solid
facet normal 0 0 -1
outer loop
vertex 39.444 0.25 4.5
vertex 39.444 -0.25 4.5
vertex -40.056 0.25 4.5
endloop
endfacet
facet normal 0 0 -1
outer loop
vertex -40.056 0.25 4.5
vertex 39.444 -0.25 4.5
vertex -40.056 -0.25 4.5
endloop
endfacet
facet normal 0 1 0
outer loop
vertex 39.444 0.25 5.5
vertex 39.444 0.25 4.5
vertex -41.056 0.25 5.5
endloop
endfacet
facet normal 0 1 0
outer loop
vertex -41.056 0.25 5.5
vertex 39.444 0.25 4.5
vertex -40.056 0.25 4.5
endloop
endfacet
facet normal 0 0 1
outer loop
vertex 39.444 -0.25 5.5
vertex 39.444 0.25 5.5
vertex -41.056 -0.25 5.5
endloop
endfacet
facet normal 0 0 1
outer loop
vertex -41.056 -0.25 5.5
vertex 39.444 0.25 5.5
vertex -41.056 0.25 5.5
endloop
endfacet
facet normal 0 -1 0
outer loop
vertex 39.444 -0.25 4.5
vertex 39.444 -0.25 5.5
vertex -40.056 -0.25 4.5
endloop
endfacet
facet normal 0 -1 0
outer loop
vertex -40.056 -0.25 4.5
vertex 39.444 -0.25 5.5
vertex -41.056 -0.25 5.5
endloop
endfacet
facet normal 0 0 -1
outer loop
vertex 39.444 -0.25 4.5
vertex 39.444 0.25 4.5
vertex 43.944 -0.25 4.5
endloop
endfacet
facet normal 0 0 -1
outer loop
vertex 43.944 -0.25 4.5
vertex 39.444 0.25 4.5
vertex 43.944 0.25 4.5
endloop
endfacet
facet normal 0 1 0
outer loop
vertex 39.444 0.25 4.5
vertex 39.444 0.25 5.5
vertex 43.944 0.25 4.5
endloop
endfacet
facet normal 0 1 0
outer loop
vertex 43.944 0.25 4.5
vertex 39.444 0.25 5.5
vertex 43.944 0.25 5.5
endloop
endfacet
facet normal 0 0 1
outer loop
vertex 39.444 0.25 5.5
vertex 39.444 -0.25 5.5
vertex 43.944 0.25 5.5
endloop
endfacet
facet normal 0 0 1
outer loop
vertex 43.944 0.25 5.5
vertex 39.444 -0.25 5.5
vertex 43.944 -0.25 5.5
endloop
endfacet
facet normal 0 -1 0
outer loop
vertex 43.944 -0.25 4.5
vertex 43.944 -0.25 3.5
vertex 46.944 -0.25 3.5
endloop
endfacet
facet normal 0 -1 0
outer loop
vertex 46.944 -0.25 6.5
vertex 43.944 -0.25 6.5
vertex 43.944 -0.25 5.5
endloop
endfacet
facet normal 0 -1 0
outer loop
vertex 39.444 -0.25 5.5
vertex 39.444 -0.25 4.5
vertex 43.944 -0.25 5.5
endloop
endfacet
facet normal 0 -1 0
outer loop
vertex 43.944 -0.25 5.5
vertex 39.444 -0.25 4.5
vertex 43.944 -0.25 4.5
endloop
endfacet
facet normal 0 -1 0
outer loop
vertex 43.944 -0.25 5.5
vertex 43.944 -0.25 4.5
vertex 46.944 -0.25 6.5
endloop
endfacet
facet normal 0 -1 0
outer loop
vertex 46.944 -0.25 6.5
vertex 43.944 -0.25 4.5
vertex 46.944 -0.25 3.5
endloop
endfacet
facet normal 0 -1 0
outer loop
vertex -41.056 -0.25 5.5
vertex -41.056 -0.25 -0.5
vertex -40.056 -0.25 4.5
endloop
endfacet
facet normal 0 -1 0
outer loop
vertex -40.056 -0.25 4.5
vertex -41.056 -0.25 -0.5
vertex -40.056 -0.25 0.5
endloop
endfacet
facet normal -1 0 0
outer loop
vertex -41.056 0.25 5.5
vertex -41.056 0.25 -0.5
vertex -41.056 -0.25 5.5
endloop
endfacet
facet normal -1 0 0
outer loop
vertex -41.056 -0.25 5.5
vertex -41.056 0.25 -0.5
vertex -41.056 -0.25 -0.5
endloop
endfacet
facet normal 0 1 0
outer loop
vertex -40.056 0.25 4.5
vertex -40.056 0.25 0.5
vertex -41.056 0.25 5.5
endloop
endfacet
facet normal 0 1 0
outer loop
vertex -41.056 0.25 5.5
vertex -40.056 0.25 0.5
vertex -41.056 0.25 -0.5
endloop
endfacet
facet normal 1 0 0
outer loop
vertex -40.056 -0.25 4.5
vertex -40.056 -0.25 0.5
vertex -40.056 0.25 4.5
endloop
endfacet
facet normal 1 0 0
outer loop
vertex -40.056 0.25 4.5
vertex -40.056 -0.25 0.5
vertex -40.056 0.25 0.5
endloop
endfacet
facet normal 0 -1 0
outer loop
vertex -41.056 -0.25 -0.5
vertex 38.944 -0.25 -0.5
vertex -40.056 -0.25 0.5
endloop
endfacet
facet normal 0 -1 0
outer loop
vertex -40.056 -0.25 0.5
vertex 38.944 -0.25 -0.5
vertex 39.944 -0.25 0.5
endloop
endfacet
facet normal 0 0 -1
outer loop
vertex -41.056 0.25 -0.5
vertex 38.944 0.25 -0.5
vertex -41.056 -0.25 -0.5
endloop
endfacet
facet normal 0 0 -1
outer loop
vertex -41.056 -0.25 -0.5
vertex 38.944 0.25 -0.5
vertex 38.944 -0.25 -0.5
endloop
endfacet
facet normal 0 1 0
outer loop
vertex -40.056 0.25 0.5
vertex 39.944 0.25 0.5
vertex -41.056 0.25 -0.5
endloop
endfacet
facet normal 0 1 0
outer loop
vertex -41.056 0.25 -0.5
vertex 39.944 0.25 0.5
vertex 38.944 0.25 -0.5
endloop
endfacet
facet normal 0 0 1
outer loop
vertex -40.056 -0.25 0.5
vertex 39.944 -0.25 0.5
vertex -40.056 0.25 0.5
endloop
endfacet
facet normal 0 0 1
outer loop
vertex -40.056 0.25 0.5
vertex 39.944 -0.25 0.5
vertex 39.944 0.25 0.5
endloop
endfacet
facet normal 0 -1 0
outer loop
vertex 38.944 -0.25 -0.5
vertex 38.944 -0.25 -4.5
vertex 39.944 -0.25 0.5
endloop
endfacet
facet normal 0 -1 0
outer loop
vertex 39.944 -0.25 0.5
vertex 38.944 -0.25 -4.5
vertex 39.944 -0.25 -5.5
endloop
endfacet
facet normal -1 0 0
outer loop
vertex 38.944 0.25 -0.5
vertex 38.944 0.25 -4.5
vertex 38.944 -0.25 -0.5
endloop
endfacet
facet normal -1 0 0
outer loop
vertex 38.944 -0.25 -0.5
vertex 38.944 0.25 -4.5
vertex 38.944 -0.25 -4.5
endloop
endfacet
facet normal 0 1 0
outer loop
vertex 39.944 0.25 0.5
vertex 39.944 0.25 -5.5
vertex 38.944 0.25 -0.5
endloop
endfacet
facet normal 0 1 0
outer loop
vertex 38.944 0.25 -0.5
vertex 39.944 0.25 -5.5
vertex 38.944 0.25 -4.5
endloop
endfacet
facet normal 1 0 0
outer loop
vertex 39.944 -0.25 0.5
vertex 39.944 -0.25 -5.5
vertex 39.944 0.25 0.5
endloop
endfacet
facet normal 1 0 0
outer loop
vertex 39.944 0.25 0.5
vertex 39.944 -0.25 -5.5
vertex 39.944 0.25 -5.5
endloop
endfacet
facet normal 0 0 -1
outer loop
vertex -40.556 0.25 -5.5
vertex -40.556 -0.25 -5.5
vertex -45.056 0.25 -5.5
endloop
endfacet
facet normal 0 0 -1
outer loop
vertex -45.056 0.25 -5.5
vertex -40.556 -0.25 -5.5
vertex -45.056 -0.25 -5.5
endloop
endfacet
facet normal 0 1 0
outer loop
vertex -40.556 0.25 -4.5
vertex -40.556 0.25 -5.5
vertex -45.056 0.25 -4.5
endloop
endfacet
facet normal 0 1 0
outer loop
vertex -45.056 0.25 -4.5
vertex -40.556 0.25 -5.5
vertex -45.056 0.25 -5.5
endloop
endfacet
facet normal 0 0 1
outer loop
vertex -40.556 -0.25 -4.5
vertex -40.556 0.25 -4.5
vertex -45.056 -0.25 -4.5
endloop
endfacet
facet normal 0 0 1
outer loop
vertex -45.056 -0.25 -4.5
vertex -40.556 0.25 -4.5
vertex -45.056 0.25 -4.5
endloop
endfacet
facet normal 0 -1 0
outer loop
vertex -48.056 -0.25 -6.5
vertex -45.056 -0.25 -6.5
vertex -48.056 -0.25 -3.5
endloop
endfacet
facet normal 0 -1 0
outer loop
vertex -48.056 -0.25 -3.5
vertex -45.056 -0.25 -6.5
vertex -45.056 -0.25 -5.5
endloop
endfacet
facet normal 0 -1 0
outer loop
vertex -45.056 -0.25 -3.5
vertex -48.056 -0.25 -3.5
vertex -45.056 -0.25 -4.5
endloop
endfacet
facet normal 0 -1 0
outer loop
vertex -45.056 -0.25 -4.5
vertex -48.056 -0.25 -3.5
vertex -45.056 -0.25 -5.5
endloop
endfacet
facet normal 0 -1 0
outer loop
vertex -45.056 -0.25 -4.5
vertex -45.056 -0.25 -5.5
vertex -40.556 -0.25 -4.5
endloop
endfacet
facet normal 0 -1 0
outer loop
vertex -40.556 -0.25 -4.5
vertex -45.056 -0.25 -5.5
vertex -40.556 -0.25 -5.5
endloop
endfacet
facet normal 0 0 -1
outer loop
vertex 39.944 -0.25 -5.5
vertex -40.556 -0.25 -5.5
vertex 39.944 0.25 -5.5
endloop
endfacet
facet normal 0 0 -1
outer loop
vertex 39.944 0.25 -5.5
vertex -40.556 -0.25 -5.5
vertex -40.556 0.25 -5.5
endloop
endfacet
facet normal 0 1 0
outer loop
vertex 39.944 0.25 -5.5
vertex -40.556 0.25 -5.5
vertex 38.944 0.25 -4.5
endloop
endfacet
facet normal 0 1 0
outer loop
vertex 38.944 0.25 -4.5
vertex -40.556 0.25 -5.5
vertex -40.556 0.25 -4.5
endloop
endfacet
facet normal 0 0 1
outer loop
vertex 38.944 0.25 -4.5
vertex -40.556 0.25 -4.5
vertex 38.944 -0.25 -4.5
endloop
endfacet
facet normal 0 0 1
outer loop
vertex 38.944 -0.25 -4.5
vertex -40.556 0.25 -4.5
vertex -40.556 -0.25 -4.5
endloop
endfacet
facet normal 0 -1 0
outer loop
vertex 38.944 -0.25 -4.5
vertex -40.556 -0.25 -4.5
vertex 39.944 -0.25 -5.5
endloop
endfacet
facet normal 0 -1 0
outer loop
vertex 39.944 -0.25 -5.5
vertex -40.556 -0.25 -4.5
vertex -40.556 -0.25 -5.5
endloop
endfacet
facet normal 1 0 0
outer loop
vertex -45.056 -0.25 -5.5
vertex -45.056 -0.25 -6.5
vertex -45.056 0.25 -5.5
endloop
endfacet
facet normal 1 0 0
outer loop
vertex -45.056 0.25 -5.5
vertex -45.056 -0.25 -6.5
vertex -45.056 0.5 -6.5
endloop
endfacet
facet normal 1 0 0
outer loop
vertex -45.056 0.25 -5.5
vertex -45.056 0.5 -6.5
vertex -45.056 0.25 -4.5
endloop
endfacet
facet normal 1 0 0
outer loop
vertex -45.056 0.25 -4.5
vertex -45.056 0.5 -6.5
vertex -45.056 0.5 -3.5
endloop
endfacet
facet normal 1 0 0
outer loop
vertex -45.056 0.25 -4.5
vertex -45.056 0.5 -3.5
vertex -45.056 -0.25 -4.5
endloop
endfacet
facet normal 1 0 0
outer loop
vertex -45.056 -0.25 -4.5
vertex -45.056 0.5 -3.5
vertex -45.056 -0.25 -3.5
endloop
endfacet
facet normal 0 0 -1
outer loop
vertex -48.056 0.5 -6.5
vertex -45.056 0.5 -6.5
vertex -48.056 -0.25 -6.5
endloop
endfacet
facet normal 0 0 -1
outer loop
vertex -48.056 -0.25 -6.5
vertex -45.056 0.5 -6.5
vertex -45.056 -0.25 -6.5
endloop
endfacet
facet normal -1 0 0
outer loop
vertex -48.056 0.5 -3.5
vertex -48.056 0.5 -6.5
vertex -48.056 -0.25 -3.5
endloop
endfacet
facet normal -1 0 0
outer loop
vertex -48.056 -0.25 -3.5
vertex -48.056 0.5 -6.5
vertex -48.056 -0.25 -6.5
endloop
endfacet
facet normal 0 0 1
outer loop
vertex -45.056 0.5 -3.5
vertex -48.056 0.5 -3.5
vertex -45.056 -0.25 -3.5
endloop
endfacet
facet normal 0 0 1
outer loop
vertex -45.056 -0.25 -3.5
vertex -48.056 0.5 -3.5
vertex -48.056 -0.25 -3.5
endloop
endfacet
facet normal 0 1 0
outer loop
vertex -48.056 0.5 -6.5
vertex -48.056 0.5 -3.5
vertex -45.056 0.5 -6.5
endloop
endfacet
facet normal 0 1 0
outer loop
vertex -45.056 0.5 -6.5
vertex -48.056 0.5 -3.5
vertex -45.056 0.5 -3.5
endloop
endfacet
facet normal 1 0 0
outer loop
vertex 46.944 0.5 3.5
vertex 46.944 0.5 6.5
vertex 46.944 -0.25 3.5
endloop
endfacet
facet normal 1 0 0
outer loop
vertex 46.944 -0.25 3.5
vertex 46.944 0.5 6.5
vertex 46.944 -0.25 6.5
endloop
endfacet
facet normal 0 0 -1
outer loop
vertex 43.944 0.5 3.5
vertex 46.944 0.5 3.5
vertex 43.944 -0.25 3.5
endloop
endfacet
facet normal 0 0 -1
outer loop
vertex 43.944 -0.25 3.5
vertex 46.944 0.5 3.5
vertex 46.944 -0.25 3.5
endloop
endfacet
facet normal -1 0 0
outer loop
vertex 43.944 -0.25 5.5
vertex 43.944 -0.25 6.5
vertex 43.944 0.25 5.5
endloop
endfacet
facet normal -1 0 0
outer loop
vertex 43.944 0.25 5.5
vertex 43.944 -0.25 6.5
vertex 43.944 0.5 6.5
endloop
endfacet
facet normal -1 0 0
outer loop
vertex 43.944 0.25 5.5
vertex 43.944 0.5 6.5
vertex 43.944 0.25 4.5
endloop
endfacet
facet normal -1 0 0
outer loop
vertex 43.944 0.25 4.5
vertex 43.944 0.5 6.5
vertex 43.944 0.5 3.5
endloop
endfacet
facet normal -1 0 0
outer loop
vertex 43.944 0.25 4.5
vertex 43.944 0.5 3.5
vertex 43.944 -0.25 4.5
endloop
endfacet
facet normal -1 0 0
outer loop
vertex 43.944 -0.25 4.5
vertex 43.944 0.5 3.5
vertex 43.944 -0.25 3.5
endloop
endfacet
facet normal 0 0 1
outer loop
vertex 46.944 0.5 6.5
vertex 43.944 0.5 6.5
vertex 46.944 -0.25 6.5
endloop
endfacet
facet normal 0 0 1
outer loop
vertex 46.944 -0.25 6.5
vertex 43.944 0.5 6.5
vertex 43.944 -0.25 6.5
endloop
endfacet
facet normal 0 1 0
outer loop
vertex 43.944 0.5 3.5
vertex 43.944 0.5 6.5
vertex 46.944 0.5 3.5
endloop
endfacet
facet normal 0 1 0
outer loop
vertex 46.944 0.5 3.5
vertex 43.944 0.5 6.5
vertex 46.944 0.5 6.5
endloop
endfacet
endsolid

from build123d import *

# Parameters (mm, degrees)
SKETCH2_W           = 1
SKETCH2_H           = 0.5
SKETCH3_W           = 3
SKETCH3_H           = 3
BOSS_EXTRUDE1_DEPTH = 0.75


with BuildPart() as part:
    # Sweep1: sweep along a path in Sketch1
    with BuildLine(Plane(origin=(0, 0, 0), x_dir=(1, 0, 0), z_dir=(0, 1, 0))) as sweep1_path:
        Line((-46.555555556, 5), (-40.555555556, 5))
        Line((-40.555555556, 5), (39.444444444, 5))
        Line((39.444444444, 5), (39.444444444, 0))
        Line((39.444444444, 0), (-40.555555556, 0))
        Line((-40.555555556, 0), (-40.555555556, -5))
        Line((-40.555555556, -5), (39.444444444, -5))
        Line((39.444444444, -5), (45.444444444, -5))
    # Sketch2 → Sweep1 (sweep)
    with BuildSketch(Plane(origin=(45.444444444, 0, 0), x_dir=(0, 0, -1), z_dir=(1, 0, 0))):
        with Locations((-5, 0)):
            Rectangle(SKETCH2_W, SKETCH2_H)
    sweep(path=sweep1_path.line, transition=Transition.RIGHT)

    # Sketch3 → Boss-Extrude1 (add)
    with BuildSketch(Plane.XZ.offset(0.25)):
        with Locations((-46.555555556, -5)):
            Rectangle(SKETCH3_W, SKETCH3_H)
        with Locations((45.444444444, 5)):
            Rectangle(SKETCH3_W, SKETCH3_H)
    extrude(amount=-BOSS_EXTRUDE1_DEPTH)


solid = part.part
